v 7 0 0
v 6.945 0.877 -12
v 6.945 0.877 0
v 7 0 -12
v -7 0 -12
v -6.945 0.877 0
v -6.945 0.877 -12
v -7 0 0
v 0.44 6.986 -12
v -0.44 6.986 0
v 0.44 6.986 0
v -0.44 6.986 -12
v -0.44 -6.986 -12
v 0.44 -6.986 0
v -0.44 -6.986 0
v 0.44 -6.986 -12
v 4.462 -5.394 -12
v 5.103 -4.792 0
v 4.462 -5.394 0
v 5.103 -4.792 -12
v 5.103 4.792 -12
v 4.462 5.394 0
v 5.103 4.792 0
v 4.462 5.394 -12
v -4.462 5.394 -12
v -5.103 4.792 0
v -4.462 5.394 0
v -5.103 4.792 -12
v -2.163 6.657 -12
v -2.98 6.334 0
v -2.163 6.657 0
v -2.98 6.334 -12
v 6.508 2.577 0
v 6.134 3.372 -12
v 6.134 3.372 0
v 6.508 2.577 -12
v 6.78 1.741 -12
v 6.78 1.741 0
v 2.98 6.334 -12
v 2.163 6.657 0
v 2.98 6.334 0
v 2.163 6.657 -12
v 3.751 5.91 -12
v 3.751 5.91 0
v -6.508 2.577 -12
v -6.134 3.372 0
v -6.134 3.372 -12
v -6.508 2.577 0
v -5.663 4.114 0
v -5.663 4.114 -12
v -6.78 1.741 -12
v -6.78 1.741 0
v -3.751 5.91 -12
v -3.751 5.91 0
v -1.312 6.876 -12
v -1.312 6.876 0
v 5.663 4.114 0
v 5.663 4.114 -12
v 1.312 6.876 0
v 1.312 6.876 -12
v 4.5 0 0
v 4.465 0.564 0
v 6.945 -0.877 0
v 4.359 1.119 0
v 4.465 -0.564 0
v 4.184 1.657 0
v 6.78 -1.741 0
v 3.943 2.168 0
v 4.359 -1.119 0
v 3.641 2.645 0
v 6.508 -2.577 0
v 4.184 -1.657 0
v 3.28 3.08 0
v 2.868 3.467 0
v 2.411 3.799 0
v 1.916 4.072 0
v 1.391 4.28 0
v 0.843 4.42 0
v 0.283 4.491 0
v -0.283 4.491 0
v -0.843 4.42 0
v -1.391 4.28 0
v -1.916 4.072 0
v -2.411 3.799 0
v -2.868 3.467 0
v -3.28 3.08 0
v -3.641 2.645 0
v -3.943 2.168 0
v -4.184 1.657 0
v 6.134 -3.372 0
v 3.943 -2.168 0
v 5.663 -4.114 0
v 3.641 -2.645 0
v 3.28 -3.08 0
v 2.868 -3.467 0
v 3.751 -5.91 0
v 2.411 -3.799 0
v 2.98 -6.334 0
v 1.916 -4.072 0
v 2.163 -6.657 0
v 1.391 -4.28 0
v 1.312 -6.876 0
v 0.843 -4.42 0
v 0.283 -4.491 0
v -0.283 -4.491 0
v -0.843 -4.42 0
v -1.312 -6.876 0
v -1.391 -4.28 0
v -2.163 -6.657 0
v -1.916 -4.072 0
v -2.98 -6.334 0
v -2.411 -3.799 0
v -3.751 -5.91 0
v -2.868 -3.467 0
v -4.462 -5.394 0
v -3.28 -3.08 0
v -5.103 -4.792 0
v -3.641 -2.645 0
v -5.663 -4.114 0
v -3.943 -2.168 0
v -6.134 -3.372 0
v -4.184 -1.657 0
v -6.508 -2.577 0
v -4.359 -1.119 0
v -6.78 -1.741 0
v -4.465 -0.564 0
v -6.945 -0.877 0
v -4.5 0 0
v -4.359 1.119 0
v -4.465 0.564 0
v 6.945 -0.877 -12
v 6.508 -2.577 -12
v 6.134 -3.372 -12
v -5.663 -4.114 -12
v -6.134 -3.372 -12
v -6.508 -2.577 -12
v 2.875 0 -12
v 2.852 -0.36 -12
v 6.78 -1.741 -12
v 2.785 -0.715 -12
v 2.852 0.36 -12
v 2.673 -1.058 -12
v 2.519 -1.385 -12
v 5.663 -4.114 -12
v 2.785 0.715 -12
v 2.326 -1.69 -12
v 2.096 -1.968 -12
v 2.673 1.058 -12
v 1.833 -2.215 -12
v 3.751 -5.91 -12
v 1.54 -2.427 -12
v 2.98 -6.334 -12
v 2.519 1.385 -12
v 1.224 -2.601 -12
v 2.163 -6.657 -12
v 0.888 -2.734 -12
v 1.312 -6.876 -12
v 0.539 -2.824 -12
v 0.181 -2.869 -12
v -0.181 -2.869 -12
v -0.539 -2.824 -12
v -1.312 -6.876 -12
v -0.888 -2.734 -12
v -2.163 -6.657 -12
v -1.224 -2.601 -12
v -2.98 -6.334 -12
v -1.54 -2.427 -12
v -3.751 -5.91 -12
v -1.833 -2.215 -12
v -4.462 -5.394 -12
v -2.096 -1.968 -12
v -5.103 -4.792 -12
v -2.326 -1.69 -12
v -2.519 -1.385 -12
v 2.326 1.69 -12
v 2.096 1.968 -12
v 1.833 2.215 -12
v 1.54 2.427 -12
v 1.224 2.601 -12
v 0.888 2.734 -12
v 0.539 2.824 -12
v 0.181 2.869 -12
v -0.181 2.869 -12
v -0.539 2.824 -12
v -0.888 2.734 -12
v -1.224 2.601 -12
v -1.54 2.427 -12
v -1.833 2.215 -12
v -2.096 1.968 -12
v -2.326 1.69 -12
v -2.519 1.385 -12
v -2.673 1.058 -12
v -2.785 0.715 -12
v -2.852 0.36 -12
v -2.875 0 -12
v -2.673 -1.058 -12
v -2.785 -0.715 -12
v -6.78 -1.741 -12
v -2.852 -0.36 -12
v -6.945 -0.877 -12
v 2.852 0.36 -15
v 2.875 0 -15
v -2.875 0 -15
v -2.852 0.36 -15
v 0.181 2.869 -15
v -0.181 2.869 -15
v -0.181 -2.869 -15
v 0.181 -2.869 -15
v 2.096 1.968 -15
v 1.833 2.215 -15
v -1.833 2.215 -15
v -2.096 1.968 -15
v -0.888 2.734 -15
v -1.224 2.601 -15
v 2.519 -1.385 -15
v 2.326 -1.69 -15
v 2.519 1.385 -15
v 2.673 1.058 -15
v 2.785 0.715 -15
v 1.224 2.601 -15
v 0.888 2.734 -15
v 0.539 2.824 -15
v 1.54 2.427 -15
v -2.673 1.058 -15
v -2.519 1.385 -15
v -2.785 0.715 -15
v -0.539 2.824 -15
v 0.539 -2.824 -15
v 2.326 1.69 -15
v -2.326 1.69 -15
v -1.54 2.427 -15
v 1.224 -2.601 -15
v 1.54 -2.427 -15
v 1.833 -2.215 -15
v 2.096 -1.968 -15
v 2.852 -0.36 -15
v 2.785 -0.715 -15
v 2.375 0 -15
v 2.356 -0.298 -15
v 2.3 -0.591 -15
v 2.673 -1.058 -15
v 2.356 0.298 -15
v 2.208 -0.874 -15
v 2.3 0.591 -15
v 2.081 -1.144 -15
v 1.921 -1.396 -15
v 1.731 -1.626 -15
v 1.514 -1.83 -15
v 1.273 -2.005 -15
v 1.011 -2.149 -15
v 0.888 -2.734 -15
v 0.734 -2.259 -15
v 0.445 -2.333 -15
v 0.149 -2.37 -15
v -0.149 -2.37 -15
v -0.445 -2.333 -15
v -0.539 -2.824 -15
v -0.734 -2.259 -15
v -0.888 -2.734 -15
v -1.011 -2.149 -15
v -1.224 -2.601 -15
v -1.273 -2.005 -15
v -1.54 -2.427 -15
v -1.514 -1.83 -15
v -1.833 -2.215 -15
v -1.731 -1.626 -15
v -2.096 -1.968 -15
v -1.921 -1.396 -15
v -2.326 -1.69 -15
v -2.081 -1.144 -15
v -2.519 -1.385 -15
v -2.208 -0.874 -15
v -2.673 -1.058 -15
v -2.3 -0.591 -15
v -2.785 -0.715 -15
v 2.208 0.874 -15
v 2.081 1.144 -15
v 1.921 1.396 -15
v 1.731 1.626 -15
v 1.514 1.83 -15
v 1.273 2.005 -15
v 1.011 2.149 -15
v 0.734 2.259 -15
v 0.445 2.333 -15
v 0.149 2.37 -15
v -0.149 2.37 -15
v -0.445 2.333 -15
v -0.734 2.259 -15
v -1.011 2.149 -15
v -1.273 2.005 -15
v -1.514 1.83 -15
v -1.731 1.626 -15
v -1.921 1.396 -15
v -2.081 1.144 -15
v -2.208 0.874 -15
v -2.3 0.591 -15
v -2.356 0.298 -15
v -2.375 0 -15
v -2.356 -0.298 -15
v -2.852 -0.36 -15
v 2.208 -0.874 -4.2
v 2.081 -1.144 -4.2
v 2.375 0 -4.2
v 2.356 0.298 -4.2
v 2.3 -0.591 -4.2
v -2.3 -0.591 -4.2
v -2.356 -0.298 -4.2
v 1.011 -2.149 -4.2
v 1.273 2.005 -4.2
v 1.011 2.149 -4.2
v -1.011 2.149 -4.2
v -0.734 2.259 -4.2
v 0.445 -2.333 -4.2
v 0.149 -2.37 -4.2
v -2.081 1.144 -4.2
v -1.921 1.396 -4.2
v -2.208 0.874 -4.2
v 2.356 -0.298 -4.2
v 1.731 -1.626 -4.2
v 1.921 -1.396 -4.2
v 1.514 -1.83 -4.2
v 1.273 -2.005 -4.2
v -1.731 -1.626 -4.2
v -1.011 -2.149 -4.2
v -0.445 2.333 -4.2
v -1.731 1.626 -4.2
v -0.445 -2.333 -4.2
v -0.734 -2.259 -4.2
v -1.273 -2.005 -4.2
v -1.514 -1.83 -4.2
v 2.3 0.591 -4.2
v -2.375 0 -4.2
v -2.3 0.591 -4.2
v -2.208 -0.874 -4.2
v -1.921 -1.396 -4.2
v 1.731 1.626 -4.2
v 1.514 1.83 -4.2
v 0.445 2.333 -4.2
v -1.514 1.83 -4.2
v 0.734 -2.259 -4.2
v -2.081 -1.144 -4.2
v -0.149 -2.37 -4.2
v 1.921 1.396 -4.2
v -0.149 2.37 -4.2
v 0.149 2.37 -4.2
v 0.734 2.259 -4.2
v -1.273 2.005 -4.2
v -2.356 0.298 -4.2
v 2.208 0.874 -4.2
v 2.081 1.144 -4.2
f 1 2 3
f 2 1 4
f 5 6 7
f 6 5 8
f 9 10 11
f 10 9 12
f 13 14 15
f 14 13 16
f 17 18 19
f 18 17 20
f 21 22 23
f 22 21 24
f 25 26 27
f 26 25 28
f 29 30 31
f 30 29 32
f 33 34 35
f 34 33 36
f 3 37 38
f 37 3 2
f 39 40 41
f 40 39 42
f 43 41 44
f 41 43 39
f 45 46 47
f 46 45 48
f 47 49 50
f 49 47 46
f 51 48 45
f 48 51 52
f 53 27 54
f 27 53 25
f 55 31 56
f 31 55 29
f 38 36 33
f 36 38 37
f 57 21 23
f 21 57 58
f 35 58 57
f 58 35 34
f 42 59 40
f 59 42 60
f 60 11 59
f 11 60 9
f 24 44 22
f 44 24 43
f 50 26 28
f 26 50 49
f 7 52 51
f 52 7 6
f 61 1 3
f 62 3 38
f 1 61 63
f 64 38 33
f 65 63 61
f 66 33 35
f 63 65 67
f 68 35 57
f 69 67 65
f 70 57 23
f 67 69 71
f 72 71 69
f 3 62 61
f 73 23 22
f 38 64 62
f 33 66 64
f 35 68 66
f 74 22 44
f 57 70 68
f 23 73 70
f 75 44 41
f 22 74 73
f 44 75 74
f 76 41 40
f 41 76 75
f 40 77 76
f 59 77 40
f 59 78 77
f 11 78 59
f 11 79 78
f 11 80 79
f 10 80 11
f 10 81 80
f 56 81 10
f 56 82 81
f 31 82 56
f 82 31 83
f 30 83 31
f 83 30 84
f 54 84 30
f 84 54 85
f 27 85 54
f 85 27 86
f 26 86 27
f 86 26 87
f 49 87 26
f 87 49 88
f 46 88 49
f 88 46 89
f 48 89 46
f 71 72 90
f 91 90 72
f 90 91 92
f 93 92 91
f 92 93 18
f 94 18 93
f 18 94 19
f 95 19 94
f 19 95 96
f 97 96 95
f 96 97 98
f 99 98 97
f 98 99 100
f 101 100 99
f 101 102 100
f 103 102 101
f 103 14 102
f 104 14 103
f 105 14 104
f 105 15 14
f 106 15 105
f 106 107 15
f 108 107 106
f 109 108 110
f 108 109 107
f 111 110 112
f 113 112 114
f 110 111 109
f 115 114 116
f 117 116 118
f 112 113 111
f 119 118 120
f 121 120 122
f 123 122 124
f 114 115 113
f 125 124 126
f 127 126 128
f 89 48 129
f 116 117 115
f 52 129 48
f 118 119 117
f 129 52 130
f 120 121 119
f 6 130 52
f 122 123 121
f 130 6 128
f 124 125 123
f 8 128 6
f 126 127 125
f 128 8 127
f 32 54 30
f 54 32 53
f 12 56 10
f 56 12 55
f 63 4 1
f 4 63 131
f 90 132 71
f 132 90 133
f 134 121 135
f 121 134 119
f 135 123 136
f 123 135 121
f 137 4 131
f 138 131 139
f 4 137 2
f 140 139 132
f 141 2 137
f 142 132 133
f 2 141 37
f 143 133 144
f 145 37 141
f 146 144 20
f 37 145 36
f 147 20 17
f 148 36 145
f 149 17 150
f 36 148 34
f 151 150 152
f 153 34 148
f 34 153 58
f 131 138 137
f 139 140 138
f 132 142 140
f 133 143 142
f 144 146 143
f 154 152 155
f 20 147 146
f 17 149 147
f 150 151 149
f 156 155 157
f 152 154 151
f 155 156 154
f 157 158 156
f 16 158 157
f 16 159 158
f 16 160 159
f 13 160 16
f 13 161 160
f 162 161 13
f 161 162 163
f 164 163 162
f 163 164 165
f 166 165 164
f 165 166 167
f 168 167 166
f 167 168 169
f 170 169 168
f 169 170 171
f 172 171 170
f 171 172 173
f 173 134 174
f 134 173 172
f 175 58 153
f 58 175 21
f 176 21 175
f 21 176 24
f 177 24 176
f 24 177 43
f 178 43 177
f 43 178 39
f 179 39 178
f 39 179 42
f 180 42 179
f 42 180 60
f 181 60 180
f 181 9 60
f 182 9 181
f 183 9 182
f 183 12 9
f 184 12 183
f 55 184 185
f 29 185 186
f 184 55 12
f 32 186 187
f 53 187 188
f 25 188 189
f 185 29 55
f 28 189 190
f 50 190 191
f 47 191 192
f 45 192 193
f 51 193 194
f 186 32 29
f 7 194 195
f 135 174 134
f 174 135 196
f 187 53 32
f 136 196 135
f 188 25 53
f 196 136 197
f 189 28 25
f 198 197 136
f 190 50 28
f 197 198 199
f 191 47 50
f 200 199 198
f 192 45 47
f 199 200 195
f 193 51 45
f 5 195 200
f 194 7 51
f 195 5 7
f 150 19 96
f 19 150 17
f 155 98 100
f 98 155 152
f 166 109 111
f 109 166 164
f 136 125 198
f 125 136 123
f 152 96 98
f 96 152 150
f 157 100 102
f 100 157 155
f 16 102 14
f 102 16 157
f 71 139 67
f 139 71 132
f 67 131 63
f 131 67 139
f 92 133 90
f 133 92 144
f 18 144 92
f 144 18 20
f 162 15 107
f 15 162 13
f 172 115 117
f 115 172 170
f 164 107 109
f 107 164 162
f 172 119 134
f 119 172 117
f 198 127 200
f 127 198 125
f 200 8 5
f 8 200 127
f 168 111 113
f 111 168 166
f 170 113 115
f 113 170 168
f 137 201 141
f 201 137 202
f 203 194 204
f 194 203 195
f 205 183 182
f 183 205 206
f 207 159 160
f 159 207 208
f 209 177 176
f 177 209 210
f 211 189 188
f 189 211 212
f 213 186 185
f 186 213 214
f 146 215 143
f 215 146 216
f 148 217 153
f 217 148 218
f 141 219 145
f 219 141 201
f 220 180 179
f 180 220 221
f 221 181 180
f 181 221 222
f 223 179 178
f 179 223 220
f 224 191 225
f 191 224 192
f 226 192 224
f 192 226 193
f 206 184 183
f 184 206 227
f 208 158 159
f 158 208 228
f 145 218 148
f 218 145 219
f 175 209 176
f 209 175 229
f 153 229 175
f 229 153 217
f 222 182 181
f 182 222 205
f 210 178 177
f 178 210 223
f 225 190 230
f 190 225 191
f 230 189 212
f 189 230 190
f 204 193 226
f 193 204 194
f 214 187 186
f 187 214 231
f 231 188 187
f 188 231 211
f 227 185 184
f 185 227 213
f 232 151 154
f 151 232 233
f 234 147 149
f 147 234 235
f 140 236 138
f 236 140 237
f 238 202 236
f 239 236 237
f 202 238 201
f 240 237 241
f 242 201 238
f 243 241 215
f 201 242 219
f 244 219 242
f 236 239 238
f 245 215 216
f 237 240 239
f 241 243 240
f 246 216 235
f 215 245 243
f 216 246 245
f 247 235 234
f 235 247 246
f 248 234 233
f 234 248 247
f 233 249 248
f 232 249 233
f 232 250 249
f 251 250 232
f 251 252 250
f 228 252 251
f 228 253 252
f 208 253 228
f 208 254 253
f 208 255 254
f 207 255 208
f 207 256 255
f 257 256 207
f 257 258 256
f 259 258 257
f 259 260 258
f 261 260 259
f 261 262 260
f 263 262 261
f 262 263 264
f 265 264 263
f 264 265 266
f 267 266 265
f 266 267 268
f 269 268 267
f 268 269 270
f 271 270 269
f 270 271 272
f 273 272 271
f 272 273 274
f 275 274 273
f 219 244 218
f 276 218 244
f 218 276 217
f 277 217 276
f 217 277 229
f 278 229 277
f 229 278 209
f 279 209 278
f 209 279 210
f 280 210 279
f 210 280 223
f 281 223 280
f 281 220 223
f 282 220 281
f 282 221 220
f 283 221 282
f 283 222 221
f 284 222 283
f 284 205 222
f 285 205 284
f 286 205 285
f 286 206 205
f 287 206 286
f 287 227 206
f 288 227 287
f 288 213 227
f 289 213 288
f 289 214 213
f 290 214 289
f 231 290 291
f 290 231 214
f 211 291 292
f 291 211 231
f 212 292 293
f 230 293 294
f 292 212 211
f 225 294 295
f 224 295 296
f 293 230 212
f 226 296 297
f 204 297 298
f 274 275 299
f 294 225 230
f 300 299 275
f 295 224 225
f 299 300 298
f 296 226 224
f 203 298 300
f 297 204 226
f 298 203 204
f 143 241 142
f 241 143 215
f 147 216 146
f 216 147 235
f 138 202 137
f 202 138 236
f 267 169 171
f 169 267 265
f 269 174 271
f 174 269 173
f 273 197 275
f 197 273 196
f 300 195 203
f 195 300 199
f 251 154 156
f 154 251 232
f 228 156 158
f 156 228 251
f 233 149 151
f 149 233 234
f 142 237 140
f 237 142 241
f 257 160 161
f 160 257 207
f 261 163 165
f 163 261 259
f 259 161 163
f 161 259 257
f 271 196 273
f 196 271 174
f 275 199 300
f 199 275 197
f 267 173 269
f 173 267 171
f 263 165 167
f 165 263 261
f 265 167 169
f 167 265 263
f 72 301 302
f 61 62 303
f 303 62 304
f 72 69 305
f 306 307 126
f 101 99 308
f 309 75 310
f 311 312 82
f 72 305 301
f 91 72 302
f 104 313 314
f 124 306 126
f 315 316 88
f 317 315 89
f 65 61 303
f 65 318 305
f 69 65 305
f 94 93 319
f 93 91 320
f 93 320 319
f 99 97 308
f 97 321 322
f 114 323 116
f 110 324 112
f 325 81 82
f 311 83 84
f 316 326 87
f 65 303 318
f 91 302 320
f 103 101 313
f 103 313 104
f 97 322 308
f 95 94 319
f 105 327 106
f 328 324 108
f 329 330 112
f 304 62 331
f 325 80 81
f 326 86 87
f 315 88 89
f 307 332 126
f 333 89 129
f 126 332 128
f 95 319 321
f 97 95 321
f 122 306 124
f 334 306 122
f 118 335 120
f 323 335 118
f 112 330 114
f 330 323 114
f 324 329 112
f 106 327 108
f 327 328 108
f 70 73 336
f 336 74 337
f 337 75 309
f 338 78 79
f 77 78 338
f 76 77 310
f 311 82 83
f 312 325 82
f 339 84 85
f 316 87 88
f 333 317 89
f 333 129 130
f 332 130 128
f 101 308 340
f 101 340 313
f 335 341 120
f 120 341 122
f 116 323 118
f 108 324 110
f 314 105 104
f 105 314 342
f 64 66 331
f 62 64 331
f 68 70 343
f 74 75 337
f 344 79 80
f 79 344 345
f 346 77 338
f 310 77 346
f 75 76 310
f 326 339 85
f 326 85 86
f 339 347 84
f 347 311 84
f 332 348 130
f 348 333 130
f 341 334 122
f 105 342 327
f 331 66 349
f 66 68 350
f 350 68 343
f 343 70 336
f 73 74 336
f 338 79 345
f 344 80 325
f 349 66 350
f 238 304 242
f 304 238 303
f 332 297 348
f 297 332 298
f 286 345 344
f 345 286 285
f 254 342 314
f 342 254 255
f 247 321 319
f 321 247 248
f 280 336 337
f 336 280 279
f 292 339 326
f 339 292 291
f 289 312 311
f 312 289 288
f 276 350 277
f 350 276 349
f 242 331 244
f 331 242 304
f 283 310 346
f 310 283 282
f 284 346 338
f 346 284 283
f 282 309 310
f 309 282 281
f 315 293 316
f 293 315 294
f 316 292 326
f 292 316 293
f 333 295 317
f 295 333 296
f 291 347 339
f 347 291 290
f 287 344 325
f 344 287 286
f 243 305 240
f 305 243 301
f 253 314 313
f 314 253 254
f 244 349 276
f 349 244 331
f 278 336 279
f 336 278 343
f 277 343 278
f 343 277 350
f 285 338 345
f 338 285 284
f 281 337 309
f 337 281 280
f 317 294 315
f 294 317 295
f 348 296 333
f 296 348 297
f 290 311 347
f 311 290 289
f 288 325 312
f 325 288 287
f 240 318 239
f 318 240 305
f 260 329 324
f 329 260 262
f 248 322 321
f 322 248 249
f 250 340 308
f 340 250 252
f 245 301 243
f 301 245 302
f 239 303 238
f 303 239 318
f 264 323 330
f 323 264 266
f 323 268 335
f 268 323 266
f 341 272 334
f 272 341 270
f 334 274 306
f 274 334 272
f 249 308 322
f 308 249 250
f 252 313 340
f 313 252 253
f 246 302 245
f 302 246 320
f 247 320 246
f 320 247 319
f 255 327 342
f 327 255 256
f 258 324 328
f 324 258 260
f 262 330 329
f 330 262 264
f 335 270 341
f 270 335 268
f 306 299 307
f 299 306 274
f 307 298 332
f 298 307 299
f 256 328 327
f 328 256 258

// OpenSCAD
$fn = 50;


difference() {
	union() {
		translate(v = [0, 0, -12.0000000000]) {
			cylinder(h = 12, r = 7.0000000000);
		}
		translate(v = [0, 0, -15.0000000000]) {
			cylinder(h = 15, r = 2.8750000000);
		}
	}
	union() {
		translate(v = [0, 0, 0]) {
			rotate(a = [0, 0, 0]) {
				difference() {
					union() {
						translate(v = [0, 0, -15.0000000000]) {
							cylinder(h = 15, r = 2.2500000000);
						}
						translate(v = [0, 0, -4.2000000000]) {
							cylinder(h = 4.2000000000, r1 = 2.3750000000, r2 = 4.5000000000);
						}
						translate(v = [0, 0, -15.0000000000]) {
							cylinder(h = 15, r = 2.3750000000);
						}
						translate(v = [0, 0, -15.0000000000]) {
							cylinder(h = 15, r = 2.2500000000);
						}
					}
					union();
				}
			}
		}
	}
}
